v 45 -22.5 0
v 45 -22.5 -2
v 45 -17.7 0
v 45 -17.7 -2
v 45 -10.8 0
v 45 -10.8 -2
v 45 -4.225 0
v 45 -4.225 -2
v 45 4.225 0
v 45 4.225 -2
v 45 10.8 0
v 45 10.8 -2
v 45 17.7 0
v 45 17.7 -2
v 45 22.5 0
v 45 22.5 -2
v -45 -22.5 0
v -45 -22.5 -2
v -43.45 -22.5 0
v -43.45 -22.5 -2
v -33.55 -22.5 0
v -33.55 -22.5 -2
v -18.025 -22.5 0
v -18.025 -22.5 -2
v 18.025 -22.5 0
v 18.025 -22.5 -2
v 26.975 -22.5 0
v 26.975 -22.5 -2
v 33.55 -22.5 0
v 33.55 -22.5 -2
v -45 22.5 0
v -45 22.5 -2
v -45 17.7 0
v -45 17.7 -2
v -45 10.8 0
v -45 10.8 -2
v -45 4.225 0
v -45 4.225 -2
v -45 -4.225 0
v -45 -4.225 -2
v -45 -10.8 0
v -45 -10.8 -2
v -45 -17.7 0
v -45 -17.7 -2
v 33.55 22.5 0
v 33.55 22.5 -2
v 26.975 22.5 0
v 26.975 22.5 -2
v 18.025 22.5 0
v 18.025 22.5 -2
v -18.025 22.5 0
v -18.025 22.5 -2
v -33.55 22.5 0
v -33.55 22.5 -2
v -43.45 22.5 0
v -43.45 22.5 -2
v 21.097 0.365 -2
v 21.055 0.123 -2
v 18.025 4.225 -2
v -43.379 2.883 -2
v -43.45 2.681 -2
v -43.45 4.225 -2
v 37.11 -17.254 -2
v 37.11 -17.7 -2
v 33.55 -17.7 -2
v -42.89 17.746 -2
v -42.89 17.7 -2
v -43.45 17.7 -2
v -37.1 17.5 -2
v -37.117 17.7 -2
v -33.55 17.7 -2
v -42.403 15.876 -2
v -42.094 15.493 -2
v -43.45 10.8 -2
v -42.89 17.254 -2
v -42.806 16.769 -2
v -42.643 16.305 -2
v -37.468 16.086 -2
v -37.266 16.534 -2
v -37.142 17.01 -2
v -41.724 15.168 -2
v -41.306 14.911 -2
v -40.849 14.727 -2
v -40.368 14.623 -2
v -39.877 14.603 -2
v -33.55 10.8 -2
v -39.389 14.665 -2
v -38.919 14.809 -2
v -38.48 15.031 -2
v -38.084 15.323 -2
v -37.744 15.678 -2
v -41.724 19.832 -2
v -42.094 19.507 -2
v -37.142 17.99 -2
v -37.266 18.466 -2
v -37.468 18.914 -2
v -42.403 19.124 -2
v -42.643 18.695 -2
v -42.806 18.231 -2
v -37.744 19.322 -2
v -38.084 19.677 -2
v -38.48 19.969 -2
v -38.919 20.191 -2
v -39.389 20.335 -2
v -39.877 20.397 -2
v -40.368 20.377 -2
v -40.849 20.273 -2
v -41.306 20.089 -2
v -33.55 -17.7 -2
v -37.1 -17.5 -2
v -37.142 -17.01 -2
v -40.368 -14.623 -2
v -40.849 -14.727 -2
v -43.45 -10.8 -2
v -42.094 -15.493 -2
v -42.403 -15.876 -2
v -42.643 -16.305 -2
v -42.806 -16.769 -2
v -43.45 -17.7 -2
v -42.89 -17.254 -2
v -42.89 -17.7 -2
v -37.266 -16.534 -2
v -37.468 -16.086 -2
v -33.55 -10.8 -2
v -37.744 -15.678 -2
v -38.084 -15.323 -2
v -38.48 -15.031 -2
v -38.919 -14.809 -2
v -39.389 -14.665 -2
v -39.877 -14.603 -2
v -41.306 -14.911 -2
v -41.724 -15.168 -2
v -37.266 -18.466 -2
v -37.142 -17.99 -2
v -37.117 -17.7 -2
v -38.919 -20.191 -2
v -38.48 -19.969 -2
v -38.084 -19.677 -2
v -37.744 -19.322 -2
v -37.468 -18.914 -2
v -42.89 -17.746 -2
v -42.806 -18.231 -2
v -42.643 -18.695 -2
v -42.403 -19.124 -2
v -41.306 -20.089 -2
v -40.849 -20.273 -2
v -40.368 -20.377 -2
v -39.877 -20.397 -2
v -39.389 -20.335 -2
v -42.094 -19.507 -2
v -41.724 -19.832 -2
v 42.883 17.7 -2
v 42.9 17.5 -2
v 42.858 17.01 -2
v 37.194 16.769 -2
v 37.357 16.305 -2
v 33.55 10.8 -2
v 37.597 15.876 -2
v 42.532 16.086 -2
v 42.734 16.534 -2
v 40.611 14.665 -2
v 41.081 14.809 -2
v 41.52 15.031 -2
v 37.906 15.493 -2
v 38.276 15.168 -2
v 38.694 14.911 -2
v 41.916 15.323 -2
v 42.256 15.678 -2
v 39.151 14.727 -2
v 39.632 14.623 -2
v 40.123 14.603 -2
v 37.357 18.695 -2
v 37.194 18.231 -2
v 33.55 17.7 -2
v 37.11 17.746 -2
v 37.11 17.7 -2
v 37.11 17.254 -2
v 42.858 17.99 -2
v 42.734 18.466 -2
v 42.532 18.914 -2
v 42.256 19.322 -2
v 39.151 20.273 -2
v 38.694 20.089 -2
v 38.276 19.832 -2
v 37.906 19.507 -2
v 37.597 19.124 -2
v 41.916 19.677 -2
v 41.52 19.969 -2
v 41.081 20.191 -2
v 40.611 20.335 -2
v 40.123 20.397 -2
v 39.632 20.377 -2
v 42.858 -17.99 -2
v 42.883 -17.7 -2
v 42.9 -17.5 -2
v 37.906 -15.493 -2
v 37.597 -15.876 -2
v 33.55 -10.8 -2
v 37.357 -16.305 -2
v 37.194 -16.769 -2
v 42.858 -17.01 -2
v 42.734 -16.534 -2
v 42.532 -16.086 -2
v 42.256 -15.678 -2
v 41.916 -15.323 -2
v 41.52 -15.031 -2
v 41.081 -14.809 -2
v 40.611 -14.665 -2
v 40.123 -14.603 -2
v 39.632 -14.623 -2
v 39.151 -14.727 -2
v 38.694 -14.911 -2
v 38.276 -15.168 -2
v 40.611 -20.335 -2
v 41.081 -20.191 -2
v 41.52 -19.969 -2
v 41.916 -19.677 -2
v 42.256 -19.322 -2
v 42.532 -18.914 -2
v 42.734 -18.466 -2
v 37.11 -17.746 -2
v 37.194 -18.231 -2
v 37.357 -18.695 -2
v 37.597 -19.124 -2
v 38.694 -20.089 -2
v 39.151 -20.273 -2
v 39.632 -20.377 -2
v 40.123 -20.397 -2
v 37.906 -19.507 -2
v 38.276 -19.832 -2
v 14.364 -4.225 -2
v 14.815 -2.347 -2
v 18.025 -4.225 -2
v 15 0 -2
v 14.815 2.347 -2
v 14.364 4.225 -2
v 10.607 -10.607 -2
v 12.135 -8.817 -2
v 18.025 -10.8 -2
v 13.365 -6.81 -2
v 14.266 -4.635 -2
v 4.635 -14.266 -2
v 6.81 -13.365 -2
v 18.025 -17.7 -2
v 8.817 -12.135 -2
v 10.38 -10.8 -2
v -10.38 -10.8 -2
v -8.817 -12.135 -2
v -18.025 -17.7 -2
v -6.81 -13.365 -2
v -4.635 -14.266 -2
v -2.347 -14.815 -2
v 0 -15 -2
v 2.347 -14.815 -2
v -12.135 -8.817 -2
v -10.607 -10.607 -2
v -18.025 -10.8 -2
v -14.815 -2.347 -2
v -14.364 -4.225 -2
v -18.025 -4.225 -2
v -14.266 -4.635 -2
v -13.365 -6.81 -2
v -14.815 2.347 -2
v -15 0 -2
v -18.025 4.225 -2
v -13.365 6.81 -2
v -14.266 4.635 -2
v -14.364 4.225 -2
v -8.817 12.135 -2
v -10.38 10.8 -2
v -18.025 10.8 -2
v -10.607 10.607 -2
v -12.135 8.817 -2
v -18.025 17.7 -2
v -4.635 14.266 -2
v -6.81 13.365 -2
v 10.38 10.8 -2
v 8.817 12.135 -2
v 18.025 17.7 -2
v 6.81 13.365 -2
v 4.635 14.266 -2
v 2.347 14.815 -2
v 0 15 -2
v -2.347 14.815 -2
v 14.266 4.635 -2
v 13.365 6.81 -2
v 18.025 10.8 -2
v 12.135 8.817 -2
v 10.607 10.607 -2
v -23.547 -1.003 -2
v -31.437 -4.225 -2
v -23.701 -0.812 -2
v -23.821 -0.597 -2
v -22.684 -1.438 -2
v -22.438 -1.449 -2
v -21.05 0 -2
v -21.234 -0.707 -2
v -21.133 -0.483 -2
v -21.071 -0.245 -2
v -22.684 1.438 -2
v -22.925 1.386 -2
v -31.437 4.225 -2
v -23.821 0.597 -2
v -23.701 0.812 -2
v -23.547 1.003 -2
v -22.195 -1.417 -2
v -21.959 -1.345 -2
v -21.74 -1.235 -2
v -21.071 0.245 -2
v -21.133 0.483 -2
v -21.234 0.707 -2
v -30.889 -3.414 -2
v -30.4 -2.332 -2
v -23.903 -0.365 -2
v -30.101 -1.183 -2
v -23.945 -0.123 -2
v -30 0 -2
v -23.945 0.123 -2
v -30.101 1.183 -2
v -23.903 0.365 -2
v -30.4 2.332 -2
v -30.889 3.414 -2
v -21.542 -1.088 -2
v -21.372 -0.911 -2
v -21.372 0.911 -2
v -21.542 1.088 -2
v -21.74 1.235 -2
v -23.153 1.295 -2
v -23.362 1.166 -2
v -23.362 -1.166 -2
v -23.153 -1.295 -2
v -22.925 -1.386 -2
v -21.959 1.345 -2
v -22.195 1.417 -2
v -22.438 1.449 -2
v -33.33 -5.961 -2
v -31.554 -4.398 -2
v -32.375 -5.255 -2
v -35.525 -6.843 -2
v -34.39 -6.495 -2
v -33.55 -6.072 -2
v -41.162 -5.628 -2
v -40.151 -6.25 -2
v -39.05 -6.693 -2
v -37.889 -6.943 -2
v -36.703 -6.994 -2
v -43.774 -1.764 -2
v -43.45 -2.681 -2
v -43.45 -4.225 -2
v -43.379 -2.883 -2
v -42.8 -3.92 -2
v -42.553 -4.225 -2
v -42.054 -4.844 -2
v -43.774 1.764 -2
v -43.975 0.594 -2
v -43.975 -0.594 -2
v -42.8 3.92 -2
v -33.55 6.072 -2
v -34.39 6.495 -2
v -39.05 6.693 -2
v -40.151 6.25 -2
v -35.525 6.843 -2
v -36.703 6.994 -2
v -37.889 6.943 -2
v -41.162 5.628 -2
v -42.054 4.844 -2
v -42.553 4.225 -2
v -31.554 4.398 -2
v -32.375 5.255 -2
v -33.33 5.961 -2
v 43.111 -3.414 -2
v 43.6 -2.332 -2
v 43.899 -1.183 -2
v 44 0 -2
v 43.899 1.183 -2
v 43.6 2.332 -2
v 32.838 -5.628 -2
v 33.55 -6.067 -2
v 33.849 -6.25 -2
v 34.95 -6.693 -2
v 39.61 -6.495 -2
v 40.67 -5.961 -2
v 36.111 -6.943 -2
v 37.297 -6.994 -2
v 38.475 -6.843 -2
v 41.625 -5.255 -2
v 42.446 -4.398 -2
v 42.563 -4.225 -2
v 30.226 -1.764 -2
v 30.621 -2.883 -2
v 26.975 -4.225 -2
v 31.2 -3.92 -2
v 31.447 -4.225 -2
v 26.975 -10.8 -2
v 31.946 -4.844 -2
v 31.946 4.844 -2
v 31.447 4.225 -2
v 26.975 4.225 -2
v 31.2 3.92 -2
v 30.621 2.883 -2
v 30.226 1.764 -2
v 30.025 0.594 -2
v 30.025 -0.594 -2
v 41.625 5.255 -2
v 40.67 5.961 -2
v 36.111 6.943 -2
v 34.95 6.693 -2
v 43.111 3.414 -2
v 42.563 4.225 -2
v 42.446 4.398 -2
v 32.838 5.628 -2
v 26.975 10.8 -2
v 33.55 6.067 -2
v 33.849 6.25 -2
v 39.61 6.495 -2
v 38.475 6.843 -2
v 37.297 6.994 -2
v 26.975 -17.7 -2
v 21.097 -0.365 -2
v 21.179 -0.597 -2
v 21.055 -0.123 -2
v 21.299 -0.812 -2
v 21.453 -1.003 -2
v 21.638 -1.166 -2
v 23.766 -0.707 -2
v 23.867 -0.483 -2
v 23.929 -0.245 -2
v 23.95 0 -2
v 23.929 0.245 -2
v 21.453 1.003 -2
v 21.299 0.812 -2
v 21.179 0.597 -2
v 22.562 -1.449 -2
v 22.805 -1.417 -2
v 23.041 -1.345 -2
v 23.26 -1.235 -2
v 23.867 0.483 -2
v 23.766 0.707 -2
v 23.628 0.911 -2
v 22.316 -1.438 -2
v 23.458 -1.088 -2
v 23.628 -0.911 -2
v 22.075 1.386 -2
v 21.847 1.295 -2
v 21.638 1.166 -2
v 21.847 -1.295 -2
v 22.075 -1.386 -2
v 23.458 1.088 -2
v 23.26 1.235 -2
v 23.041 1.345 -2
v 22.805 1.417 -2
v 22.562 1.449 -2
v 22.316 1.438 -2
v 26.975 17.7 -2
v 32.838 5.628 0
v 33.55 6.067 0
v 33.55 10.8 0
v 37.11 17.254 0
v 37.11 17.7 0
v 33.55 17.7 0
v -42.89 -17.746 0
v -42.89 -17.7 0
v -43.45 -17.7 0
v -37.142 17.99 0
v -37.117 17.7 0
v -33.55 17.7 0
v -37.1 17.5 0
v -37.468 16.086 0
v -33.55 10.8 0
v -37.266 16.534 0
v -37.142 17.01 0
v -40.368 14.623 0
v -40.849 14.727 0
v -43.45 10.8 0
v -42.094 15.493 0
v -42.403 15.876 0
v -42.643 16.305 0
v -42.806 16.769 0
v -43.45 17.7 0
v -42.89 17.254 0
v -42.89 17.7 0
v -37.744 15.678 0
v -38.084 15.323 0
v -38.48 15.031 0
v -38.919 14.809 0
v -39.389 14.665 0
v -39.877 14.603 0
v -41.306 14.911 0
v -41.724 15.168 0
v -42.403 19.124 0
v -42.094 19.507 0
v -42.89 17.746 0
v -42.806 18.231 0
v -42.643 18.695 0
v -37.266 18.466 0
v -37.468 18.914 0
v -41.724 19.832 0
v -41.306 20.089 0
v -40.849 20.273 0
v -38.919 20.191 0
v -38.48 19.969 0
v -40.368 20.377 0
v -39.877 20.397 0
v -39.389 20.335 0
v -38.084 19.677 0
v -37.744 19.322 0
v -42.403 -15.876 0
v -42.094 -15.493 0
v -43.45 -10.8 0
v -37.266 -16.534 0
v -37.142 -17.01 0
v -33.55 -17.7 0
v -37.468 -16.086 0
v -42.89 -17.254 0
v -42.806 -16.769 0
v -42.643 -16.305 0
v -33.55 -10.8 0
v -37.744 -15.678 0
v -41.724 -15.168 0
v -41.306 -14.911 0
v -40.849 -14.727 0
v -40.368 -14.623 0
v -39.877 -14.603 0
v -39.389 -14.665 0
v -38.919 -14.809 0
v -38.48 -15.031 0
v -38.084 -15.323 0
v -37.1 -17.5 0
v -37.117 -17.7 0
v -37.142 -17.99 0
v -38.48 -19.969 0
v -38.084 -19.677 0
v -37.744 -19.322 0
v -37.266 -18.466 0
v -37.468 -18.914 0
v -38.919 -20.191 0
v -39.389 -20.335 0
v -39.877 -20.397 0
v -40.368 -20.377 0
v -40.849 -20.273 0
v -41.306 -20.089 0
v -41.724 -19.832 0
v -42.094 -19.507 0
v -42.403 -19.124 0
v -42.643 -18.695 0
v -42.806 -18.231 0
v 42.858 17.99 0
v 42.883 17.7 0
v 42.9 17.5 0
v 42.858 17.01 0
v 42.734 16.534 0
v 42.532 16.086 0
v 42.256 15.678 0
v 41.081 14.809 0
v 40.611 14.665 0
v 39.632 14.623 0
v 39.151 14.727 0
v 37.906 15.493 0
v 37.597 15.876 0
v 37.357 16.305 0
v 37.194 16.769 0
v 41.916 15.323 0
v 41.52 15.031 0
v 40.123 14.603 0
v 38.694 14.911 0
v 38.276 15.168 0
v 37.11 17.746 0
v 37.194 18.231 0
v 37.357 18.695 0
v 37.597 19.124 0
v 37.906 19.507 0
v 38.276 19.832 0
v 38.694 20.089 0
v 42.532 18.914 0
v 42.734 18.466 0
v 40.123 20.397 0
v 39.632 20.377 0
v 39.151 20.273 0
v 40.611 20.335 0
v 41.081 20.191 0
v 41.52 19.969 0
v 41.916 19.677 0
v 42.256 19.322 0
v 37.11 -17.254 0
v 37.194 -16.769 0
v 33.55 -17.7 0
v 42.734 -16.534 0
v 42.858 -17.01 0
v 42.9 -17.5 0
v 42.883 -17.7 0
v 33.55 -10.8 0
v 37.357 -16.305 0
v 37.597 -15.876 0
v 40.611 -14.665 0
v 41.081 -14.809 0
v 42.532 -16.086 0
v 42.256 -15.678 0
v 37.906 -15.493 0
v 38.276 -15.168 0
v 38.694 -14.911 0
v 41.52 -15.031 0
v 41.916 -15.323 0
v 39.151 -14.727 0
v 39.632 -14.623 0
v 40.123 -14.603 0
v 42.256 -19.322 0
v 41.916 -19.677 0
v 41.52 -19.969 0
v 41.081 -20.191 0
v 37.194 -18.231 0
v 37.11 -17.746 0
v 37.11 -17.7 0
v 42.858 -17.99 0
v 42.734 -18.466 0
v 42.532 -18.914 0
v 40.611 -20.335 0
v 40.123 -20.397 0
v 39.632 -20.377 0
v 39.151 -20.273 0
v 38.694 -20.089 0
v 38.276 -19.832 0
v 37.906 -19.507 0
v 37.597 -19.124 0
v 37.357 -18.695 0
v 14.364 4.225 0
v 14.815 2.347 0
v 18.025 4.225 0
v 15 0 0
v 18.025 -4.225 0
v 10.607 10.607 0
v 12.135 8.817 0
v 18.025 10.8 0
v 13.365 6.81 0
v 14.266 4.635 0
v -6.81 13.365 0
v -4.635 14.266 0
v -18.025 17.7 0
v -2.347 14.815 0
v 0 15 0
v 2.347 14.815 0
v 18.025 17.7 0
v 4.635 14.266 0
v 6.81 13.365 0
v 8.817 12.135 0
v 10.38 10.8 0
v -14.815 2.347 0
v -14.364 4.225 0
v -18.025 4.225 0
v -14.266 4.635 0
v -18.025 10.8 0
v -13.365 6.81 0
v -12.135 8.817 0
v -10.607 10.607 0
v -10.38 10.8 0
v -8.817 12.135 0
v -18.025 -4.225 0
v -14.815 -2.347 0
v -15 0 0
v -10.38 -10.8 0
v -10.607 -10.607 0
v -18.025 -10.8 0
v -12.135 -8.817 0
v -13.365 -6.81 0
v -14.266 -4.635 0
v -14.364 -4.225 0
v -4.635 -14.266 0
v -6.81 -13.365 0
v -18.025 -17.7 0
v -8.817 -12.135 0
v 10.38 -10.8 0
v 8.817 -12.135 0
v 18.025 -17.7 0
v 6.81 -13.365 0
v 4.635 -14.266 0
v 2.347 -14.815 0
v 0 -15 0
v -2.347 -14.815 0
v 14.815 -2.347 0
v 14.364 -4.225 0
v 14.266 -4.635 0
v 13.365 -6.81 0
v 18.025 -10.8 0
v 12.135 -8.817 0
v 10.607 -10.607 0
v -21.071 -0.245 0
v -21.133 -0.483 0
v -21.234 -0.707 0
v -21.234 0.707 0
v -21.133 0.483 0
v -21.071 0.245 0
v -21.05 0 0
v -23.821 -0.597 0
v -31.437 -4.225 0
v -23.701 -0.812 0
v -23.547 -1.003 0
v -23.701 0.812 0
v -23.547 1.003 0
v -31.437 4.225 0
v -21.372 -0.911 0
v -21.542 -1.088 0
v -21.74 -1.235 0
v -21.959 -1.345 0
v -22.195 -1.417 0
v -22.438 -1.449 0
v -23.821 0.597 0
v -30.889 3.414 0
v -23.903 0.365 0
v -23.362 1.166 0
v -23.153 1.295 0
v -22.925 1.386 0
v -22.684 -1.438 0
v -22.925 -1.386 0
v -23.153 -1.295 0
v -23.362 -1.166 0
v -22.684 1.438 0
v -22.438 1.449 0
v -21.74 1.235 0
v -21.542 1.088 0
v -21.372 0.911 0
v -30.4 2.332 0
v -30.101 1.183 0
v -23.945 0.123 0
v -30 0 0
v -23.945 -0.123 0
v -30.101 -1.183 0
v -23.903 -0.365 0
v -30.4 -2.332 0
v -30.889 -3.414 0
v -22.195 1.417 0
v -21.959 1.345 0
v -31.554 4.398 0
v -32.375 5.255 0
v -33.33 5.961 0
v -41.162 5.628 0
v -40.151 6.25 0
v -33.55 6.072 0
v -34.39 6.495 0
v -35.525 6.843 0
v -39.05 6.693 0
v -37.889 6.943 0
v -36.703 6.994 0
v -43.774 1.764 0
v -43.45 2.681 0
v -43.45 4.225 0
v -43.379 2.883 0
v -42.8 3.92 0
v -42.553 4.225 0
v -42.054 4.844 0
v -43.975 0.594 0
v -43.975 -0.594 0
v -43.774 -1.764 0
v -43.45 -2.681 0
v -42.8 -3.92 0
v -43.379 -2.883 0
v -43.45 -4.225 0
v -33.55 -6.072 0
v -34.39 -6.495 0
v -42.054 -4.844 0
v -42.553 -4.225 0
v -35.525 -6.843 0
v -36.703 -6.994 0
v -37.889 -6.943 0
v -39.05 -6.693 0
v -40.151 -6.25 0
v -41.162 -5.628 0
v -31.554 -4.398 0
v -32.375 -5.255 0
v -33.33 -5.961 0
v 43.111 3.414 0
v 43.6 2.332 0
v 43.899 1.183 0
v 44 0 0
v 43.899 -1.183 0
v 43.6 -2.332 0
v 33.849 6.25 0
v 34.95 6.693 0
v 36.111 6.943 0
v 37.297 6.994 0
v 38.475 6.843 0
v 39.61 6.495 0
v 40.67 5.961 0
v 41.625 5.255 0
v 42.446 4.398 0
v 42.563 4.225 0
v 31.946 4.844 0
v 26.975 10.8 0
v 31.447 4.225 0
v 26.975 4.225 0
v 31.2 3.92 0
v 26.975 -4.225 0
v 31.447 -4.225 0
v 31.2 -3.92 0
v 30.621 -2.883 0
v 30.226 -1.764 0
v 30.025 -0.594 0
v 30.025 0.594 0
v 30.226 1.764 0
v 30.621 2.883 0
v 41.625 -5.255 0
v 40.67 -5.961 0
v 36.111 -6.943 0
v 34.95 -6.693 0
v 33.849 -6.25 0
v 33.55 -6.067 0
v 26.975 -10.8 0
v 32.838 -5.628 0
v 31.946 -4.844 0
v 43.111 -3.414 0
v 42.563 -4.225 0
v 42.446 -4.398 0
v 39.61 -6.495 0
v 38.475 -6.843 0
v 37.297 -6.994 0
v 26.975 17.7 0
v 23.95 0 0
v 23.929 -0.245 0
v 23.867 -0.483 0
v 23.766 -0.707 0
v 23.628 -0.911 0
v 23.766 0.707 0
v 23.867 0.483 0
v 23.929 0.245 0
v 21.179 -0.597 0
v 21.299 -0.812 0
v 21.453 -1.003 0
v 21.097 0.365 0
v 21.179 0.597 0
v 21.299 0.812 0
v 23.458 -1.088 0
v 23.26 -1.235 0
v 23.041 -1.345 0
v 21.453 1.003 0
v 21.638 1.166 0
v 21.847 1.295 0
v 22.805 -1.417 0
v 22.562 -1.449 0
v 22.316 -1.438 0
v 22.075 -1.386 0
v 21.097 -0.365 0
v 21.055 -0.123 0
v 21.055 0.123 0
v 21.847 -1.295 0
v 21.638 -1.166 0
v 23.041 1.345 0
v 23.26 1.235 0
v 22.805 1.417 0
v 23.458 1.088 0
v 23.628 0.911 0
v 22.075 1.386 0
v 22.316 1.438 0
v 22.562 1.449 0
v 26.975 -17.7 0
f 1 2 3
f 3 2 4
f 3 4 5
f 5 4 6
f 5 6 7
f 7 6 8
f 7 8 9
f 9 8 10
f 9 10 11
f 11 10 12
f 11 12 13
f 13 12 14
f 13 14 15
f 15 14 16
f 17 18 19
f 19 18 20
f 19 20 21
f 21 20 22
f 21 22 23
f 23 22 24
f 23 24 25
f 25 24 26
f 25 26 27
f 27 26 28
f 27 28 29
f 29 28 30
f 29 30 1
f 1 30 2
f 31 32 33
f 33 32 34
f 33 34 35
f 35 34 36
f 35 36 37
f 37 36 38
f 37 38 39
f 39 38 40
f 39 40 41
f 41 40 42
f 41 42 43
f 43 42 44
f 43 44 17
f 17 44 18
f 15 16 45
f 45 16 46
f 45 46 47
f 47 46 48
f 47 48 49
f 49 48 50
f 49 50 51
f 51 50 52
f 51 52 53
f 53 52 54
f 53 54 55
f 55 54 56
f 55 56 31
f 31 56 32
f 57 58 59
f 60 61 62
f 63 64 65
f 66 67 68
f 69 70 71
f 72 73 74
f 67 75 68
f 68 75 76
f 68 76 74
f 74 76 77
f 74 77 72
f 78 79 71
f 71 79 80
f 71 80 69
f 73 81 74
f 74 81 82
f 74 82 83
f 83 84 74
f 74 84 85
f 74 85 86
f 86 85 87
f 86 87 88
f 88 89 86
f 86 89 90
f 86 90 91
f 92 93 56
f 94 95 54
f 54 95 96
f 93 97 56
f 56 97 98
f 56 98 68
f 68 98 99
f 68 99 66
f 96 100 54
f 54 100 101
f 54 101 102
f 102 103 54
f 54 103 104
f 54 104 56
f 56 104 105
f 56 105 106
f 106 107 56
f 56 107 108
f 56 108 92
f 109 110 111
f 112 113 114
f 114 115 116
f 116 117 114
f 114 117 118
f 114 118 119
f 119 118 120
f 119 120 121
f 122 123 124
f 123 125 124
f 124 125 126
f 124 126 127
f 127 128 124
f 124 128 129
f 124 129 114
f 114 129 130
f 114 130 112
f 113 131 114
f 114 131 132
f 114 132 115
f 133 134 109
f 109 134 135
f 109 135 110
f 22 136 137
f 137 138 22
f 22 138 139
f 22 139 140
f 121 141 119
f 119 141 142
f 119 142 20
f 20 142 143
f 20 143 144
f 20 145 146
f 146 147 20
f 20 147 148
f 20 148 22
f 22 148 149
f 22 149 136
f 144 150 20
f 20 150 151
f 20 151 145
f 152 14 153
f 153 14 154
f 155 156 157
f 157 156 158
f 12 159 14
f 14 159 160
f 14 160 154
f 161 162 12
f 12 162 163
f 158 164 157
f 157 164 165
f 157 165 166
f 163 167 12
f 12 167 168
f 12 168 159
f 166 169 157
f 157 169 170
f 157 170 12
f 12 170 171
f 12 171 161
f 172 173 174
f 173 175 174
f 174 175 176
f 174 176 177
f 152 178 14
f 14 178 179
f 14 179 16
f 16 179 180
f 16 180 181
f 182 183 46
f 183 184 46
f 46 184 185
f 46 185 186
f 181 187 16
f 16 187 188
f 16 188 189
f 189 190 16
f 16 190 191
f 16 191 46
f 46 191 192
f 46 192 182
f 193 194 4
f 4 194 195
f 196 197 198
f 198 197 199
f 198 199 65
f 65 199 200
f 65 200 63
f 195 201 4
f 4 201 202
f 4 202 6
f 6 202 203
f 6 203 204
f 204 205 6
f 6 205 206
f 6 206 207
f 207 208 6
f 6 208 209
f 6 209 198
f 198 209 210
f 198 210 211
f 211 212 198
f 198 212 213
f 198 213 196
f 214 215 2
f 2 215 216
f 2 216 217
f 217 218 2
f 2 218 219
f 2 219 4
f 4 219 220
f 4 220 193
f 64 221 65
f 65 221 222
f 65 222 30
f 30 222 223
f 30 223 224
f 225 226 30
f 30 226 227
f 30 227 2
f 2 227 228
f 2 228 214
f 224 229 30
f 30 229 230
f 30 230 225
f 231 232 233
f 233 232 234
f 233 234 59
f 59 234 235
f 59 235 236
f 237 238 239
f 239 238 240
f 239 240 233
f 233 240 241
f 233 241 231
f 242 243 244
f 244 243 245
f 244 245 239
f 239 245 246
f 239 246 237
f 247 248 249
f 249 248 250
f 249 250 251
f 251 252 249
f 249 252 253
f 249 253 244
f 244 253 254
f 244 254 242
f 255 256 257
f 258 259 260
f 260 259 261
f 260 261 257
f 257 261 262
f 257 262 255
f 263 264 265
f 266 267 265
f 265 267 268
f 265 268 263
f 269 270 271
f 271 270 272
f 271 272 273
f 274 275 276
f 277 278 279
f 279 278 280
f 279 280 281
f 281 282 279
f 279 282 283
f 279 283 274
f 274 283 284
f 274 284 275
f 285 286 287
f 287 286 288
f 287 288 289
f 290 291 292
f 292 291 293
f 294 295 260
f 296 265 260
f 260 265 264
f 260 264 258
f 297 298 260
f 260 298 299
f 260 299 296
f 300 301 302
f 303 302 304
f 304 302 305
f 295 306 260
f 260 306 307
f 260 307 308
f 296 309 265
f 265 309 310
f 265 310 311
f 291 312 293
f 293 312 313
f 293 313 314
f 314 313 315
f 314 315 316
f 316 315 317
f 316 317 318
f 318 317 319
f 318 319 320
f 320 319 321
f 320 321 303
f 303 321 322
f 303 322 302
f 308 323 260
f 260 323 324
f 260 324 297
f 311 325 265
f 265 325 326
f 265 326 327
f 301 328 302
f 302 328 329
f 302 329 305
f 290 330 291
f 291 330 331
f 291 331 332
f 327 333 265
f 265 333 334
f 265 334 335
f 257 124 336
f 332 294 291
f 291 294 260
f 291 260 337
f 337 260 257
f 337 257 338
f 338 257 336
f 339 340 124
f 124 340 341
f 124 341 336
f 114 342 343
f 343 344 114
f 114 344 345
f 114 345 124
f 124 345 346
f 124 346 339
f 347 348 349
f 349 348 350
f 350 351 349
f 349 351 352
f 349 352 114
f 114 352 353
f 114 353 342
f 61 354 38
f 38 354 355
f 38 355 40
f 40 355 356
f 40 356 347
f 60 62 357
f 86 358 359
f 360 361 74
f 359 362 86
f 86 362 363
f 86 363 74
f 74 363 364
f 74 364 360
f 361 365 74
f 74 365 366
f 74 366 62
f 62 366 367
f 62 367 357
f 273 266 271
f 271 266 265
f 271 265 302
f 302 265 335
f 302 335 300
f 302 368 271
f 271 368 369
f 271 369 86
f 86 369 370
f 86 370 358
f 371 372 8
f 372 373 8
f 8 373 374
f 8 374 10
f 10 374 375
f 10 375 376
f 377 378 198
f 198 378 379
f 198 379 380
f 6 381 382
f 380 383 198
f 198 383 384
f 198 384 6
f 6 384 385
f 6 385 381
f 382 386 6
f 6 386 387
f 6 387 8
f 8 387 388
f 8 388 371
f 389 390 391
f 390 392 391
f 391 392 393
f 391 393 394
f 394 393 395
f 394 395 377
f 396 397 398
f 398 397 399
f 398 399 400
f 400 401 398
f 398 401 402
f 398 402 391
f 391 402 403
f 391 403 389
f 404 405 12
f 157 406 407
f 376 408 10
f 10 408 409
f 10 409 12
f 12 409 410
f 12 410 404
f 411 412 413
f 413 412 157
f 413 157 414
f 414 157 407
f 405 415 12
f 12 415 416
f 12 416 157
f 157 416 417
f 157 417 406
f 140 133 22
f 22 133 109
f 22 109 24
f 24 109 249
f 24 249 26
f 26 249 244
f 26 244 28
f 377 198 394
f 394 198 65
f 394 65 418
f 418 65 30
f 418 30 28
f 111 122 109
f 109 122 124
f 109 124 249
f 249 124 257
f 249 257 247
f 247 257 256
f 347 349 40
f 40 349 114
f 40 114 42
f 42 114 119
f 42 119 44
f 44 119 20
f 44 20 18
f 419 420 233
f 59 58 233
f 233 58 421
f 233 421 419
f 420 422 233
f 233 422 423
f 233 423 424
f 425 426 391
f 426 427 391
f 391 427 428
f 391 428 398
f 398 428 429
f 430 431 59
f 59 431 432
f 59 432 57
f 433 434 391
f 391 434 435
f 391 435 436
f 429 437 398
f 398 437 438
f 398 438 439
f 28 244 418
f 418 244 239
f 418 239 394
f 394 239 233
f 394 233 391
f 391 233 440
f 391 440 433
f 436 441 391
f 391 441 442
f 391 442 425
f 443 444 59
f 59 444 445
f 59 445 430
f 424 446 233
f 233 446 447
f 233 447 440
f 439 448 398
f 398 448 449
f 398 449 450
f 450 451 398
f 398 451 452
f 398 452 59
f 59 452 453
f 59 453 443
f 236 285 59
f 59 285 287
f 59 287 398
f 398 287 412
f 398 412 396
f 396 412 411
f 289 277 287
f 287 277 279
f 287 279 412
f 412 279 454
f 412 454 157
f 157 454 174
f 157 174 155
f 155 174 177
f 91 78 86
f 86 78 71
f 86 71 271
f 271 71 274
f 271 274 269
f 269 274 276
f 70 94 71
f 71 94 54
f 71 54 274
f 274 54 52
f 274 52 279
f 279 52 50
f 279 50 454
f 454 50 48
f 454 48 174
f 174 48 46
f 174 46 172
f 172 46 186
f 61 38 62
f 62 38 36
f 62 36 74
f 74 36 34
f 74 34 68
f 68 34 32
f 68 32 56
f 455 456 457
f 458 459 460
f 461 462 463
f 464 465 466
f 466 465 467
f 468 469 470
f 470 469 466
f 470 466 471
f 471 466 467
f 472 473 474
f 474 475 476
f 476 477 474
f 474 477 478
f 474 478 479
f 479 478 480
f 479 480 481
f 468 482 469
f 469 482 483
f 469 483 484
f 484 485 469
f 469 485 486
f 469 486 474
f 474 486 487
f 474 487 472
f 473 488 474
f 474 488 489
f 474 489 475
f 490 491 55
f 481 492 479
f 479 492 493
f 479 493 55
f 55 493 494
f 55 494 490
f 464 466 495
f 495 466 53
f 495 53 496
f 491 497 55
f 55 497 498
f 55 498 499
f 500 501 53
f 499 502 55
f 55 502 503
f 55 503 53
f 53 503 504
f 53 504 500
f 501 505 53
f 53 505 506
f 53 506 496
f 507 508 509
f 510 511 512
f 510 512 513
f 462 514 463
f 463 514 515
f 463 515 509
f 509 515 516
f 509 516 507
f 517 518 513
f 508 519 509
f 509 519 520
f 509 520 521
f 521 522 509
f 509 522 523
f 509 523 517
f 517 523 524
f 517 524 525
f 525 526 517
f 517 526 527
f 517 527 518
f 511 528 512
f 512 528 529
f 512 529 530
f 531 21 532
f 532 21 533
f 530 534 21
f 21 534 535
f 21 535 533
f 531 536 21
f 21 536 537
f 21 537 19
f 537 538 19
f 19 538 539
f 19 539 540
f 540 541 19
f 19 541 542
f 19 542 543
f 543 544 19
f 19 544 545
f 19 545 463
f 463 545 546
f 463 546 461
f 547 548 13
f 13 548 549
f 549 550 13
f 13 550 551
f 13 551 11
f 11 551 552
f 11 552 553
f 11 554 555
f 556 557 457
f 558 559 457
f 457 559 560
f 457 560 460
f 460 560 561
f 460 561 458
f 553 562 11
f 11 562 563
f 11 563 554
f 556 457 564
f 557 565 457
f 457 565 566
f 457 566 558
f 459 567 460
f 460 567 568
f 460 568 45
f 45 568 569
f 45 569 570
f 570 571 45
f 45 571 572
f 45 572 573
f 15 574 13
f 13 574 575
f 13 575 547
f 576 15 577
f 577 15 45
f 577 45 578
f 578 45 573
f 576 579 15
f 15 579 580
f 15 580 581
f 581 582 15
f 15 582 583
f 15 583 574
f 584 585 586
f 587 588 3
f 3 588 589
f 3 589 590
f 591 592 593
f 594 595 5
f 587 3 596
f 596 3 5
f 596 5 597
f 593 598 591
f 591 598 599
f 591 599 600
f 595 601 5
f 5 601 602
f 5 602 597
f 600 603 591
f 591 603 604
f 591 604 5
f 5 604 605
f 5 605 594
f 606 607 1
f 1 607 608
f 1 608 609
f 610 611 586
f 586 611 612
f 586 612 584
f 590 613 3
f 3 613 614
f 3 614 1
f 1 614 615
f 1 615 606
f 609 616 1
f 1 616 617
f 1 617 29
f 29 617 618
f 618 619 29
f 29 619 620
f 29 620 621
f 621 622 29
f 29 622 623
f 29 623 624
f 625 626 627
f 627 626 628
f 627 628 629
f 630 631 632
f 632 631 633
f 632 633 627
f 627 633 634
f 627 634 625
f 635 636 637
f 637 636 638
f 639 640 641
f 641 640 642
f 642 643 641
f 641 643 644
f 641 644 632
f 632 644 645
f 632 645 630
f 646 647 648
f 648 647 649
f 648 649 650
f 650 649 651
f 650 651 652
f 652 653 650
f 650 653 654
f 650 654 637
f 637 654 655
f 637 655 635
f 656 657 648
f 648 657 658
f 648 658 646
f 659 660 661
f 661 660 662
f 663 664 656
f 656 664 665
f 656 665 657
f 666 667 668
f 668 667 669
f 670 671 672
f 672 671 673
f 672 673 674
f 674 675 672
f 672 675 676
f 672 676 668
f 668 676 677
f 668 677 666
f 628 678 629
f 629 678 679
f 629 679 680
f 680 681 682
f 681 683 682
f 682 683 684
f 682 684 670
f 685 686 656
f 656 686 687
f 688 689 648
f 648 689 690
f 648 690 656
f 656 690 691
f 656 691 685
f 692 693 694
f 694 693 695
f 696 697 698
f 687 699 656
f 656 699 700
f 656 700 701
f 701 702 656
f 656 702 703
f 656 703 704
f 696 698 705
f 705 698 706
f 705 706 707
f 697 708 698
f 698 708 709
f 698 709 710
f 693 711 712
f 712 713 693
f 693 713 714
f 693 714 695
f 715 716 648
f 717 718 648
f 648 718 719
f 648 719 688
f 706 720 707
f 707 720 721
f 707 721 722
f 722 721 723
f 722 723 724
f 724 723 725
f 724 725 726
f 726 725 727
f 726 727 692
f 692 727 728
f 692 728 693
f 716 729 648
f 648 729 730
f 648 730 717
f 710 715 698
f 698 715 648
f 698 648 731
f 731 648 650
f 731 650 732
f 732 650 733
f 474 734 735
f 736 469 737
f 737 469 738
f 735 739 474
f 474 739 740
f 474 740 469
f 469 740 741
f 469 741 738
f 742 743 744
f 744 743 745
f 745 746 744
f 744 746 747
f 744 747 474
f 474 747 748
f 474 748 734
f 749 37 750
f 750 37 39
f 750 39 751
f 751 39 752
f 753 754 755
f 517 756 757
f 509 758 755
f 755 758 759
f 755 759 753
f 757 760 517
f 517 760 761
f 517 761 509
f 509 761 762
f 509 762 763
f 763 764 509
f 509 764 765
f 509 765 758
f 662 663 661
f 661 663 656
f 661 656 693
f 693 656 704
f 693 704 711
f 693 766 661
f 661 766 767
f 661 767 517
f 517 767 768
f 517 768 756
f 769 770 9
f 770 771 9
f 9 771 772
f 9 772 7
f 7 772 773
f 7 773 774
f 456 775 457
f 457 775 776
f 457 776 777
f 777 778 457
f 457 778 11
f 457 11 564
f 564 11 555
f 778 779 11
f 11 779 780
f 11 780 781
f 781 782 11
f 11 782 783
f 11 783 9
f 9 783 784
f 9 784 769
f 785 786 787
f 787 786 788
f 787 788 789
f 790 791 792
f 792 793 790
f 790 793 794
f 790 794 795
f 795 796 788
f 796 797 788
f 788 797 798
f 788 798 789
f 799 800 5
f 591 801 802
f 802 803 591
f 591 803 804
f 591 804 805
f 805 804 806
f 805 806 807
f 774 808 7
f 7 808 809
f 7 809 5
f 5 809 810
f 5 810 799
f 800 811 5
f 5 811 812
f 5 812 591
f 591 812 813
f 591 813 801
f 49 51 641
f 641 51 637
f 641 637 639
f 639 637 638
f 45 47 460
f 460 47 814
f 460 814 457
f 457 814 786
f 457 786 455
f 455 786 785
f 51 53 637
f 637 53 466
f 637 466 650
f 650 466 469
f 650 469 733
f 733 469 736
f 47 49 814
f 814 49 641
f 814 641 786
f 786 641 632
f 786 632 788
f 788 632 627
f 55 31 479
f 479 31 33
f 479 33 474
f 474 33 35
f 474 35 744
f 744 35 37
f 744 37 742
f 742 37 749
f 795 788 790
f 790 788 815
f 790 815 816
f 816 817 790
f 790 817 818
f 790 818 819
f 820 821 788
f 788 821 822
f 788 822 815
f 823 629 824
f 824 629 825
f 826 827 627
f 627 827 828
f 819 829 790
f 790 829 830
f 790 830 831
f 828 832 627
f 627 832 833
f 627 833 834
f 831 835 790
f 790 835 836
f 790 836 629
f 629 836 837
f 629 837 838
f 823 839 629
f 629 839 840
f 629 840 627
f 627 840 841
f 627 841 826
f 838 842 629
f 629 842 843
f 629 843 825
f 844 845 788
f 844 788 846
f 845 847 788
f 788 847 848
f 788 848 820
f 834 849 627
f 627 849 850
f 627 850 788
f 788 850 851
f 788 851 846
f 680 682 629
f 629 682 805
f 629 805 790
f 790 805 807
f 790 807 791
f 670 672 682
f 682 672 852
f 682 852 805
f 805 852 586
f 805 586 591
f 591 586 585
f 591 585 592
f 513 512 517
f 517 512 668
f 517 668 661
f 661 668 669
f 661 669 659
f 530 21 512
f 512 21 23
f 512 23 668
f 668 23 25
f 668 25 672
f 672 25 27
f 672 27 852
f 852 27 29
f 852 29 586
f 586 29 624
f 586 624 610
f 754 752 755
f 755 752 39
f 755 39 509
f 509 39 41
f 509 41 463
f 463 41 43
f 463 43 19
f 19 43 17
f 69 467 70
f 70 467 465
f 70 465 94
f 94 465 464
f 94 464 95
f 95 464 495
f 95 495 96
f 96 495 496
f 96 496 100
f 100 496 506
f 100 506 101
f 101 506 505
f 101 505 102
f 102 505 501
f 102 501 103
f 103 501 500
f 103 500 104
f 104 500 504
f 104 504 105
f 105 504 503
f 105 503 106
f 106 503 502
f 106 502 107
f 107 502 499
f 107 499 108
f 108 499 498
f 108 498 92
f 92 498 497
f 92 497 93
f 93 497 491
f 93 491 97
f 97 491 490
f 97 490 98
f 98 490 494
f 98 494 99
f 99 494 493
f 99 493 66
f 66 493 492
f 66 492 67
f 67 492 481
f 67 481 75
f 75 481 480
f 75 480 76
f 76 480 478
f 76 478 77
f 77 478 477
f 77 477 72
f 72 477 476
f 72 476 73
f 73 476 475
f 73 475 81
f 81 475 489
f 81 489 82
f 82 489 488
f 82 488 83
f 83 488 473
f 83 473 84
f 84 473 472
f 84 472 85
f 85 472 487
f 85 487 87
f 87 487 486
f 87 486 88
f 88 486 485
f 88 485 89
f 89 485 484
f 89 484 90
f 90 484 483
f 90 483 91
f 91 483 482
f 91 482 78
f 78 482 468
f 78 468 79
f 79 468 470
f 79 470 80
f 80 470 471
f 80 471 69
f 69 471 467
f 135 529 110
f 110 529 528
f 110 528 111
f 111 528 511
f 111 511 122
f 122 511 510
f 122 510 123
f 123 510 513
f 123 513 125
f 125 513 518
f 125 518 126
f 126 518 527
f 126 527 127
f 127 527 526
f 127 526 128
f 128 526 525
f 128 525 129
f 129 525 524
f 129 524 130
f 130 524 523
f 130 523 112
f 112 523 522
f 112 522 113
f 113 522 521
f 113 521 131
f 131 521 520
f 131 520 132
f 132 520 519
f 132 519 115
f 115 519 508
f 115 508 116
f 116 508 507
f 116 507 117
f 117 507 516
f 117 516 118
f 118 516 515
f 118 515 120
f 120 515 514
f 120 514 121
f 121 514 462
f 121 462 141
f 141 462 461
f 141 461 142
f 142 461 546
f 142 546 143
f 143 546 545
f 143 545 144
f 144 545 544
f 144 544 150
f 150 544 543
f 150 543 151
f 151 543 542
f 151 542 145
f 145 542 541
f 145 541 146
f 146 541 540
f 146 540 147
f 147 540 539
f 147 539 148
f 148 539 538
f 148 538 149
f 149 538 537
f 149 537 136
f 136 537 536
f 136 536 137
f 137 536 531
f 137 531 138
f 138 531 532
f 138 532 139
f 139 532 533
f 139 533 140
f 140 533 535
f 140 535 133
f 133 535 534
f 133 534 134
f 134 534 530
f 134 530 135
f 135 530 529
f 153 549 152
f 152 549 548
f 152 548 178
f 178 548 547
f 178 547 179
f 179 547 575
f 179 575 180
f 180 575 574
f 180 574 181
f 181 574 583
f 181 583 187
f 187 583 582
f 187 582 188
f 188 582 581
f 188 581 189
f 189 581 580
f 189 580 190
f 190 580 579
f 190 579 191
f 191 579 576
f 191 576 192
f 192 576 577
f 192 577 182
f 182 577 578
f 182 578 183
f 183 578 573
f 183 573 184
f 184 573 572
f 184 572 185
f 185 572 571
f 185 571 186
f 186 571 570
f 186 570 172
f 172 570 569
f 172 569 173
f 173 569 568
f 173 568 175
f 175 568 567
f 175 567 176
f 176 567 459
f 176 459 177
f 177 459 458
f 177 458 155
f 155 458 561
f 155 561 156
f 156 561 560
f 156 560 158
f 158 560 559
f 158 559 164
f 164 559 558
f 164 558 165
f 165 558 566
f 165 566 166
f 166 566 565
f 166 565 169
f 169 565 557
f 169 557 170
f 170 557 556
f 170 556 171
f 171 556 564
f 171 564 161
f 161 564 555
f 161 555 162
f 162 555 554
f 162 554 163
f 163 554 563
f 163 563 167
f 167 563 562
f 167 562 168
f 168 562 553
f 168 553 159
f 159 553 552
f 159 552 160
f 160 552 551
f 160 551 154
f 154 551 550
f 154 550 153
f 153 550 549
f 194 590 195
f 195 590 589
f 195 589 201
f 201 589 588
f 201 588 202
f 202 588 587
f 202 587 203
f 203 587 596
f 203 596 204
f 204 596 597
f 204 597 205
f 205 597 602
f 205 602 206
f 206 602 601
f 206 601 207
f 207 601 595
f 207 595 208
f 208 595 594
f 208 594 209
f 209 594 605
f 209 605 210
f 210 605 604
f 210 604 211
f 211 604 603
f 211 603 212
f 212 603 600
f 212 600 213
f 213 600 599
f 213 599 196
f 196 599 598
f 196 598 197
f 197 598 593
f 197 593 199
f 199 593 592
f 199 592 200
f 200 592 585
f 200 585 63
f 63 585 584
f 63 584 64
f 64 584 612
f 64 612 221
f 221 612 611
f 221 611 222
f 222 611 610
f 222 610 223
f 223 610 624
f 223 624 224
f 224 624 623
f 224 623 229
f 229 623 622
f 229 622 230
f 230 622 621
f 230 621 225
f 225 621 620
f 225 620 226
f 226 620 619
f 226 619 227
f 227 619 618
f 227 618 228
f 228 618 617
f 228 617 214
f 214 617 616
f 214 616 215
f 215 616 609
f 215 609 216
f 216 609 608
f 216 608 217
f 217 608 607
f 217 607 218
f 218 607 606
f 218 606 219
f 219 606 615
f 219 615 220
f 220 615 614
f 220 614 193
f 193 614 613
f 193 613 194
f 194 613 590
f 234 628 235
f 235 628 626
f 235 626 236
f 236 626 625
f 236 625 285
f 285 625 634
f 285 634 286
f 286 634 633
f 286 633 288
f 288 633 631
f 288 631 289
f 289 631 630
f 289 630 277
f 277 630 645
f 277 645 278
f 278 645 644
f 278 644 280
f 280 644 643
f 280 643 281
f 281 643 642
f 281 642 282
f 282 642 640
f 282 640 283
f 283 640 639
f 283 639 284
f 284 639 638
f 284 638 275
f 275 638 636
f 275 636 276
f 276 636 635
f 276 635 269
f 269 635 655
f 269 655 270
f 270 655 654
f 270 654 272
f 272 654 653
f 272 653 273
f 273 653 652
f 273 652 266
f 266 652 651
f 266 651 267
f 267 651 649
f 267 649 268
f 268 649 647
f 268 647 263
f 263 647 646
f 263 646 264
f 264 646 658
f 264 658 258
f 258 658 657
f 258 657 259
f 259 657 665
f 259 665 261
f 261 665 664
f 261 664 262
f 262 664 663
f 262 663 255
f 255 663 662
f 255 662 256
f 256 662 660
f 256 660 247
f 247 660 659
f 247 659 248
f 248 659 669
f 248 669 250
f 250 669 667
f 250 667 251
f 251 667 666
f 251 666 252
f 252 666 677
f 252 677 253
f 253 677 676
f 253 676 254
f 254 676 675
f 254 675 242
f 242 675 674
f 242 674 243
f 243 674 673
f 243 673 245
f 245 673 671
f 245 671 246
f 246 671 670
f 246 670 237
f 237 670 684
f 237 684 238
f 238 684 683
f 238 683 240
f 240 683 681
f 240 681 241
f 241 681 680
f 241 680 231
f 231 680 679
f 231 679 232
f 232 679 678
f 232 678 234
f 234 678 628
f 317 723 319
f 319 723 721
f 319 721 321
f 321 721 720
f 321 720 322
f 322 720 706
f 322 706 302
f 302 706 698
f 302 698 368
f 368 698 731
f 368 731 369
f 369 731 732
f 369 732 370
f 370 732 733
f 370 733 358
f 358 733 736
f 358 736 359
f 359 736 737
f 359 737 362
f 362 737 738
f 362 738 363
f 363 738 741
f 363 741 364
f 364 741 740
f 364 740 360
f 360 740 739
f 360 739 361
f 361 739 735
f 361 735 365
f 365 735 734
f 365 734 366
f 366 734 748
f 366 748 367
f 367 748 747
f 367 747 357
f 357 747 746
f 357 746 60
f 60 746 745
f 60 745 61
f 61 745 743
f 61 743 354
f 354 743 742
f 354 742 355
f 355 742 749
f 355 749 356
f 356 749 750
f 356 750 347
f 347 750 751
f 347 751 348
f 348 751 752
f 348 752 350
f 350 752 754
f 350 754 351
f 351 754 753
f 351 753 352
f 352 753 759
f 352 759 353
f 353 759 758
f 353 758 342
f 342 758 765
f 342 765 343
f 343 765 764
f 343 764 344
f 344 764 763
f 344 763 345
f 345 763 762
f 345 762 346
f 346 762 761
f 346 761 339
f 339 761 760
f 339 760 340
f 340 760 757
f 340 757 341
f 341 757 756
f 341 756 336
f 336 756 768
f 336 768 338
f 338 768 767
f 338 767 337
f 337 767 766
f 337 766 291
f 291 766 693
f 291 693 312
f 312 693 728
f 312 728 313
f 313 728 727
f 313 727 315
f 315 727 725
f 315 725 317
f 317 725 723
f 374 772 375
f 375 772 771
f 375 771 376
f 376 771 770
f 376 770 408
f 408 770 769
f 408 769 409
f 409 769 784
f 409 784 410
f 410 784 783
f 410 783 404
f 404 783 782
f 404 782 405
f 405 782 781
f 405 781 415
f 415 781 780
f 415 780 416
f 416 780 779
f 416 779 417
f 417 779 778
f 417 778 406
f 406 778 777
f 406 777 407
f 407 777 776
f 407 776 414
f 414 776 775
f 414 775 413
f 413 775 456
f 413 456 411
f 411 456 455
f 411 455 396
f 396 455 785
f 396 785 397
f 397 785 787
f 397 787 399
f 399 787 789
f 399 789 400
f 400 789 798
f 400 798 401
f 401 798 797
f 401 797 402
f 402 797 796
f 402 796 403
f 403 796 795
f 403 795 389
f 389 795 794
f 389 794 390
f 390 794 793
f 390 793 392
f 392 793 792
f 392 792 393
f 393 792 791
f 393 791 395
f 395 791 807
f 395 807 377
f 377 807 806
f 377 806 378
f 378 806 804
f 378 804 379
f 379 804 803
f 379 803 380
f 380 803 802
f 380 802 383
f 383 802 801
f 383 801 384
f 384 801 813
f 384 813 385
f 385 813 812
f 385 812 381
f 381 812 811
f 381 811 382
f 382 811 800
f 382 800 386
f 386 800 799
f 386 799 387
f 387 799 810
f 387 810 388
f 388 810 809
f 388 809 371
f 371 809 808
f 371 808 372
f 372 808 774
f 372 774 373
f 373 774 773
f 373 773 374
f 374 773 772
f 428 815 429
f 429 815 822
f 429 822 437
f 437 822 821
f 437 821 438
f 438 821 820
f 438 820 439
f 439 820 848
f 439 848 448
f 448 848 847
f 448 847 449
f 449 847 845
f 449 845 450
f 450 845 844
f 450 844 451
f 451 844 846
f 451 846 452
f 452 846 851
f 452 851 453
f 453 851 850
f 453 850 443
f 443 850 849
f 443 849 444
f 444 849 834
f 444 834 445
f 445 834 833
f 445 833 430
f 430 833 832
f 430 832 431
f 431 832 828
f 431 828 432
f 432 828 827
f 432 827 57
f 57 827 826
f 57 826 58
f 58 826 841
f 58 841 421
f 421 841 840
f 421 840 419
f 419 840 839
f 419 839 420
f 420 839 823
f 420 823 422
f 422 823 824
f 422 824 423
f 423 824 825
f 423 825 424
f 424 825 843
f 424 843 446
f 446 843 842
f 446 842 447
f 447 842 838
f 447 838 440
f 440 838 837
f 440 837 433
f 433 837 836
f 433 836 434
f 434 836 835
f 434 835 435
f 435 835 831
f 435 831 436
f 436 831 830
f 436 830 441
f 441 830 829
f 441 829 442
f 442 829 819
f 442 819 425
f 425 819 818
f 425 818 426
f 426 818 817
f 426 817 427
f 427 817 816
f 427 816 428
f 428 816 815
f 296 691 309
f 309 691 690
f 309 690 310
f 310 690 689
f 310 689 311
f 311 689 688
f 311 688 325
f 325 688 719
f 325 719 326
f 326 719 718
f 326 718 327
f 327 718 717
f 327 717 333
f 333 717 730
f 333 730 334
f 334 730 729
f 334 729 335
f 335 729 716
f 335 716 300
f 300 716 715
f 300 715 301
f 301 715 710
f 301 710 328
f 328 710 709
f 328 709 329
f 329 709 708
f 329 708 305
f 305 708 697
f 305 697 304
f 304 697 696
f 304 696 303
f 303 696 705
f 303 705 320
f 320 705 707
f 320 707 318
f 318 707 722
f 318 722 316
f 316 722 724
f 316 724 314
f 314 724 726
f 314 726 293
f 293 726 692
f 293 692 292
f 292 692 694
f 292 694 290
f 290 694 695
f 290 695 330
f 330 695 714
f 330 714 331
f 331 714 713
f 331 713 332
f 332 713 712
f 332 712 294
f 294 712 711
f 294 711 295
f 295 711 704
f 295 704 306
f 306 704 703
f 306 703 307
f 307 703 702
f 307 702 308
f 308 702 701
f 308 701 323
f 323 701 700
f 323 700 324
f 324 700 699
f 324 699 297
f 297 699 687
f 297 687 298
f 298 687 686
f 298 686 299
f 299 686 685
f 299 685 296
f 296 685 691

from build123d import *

# Parameters (mm, degrees)
SKETCH_1_W      = 90
SKETCH_1_H      = 45
SKETCH_1_R      = 2.9
SKETCH_1_R_2    = 1.45
SKETCH_1_R_3    = 15
SKETCH_1_R_4    = 7
EXTRUDE_2_DEPTH = 2


with BuildPart() as part:
    # 草图1 → 凸台-拉伸2 (new body)
    with BuildSketch(Plane.XY):
        Rectangle(SKETCH_1_W, SKETCH_1_H)
        with Locations((-40, 17.5)):
            Circle(SKETCH_1_R, mode=Mode.SUBTRACT)
        with Locations((-40, -17.5)):
            Circle(SKETCH_1_R, mode=Mode.SUBTRACT)
        with Locations((40, 17.5)):
            Circle(SKETCH_1_R, mode=Mode.SUBTRACT)
        with Locations((40, -17.5)):
            Circle(SKETCH_1_R, mode=Mode.SUBTRACT)
        with Locations((22.5, 0)):
            Circle(SKETCH_1_R_2, mode=Mode.SUBTRACT)
        with Locations((-22.5, 0)):
            Circle(SKETCH_1_R_2, mode=Mode.SUBTRACT)
        Circle(SKETCH_1_R_3, mode=Mode.SUBTRACT)
        with Locations((-37, 0)):
            Circle(SKETCH_1_R_4, mode=Mode.SUBTRACT)
        with Locations((37, 0)):
            Circle(SKETCH_1_R_4, mode=Mode.SUBTRACT)
    extrude(amount=-EXTRUDE_2_DEPTH)


solid = part.part
